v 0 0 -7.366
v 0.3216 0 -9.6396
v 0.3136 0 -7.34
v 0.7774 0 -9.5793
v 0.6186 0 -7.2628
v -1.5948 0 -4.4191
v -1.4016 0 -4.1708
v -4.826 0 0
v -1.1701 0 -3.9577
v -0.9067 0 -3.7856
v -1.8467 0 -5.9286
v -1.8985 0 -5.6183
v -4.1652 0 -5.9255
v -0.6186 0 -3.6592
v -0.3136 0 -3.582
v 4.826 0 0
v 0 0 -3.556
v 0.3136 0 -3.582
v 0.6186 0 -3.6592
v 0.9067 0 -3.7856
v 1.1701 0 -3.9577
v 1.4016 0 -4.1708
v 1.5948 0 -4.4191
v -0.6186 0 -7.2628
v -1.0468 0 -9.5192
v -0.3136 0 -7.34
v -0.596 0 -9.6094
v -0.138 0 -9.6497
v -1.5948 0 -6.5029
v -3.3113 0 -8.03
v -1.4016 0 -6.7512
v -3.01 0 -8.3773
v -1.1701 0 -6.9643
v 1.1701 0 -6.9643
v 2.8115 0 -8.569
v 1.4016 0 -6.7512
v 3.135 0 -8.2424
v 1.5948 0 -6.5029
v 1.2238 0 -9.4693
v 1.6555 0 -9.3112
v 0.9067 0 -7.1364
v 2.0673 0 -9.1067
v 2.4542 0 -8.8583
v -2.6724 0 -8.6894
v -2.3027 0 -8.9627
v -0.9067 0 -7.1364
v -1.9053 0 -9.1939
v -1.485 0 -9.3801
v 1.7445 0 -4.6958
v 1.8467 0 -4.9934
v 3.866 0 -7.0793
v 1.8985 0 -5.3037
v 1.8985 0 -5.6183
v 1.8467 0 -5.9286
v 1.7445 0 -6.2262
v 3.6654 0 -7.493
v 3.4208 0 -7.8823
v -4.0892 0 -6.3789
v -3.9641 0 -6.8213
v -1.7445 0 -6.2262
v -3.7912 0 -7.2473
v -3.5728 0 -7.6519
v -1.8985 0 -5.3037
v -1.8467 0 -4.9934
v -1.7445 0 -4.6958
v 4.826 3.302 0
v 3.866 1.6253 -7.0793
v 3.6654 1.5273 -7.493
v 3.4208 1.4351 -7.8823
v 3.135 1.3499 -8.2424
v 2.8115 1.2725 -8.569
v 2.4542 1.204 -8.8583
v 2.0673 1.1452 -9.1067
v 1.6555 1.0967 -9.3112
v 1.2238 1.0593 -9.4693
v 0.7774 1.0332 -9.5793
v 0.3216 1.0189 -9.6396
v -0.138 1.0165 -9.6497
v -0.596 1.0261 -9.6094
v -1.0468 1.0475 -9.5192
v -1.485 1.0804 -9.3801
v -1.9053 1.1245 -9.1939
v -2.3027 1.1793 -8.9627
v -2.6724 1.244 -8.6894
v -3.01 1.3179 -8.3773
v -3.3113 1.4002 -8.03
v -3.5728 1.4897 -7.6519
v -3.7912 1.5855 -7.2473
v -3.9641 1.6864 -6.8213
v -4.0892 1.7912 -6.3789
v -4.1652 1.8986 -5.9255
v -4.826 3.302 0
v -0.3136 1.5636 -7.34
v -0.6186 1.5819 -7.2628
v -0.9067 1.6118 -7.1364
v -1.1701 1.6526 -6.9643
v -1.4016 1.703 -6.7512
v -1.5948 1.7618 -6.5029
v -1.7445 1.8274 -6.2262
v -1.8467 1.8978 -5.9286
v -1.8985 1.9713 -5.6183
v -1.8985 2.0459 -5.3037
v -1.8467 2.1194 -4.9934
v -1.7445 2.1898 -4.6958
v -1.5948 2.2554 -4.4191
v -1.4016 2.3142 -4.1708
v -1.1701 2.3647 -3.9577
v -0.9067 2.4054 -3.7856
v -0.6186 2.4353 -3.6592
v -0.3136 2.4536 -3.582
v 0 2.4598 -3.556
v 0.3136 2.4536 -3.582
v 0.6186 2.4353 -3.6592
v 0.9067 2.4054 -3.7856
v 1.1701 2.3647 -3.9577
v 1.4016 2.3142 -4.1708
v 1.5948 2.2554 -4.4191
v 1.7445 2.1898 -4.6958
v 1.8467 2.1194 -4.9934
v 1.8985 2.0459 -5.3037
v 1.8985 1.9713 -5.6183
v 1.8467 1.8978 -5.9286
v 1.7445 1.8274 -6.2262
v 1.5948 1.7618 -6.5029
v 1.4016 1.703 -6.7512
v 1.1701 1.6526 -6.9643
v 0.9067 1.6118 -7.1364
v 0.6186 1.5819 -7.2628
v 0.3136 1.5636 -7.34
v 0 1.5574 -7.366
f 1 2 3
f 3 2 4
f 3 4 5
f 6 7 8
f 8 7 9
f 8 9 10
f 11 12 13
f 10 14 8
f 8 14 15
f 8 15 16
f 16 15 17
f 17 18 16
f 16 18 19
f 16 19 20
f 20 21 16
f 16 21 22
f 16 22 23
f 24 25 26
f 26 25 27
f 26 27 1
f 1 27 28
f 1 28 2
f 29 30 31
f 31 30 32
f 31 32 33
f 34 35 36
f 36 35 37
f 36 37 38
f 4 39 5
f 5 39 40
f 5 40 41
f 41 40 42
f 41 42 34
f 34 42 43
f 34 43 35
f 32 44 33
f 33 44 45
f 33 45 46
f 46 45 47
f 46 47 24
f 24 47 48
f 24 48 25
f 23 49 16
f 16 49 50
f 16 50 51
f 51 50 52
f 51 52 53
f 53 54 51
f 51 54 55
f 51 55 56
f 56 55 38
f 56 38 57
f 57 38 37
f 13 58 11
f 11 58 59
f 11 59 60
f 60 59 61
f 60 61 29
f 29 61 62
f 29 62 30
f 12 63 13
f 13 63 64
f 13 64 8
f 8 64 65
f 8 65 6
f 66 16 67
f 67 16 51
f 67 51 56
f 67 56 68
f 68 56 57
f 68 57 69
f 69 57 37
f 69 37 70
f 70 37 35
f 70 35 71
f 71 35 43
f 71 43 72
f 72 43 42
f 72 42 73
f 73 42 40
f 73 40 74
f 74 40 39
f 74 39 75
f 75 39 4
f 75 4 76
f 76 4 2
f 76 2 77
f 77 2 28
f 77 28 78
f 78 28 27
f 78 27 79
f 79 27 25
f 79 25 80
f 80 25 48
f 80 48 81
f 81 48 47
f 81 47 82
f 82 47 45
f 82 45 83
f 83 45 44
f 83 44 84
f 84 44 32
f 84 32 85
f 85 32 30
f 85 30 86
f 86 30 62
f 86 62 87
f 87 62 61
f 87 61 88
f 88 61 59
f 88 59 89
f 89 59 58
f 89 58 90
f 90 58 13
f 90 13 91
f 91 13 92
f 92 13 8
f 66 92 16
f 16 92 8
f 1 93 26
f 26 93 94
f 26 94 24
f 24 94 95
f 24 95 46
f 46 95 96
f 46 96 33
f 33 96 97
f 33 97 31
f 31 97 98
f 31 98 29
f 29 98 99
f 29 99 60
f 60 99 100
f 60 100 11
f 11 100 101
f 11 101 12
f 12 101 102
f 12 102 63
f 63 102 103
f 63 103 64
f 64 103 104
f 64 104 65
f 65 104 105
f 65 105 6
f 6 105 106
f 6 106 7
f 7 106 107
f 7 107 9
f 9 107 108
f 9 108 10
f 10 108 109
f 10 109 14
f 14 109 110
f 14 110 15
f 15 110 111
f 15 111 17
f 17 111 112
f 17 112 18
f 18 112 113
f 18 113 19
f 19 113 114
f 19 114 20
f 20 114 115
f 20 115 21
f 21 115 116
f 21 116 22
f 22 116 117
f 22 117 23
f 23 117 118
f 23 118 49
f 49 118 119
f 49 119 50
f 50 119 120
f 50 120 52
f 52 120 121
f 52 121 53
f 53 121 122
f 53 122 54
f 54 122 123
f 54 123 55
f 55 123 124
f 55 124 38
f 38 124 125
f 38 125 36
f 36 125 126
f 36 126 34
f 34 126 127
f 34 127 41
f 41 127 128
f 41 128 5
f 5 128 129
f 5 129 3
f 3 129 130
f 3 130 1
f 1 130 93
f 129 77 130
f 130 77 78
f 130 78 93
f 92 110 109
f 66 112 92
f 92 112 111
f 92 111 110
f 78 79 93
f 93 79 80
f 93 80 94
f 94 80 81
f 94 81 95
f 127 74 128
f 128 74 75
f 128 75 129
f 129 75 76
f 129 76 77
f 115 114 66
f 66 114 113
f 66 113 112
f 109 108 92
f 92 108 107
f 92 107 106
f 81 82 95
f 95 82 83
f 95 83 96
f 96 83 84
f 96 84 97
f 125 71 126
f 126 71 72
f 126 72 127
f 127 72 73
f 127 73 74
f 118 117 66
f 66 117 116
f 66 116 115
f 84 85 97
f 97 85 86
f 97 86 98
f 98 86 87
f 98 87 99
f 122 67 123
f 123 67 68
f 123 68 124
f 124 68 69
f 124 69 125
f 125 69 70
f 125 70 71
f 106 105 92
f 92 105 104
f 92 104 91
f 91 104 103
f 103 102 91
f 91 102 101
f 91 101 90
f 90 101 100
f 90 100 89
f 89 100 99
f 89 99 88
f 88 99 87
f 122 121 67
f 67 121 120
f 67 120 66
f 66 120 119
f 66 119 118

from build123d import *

# Parameters (mm, degrees)
SKETCH1_R               = 1.905
BOSS_EXTRUDE3_DEPTH     = 3.302
BOUNDARY_CUT1_START     = 3.213111109
BOUNDARY_CUT1_OUTLINE_W = 12
BOUNDARY_CUT1_OUTLINE_H = 13
BOUNDARY_CUT1_DEPTH     = 2.224461537


# Read off the part's stored shape, not the designer's step: Boundary-Cut1
with BuildPart() as part:
    # Sketch1 → Boss-Extrude3 (new body)
    with BuildSketch(Plane(origin=(0, 0, 0), x_dir=(1, 0, 0), z_dir=(0, 1, 0))):
        with BuildLine():
            Line((0, 0), (-4.826, 0))
            Line((-4.826, 0), (-4.165178795, 5.925506842))
            ThreePointArc((-4.165178795, 5.925506842), (-2.7944349, 8.584397923), (0, 9.652))
            ThreePointArc((0, 9.652), (2.321880516, 8.950033085), (3.865959408, 7.079282688))
            Line((3.865959408, 7.079282688), (4.826, 0))
            Line((4.826, 0), (0, 0))
        make_face()
        with Locations(Location((0, 5.461, 0), (0, 0, 90))):
            Circle(SKETCH1_R, mode=Mode.SUBTRACT)
    extrude(amount=BOSS_EXTRUDE3_DEPTH)

    # Boundary-Cut1 outline → Boundary-Cut1 (cut)
    with BuildSketch(Plane(origin=(0, 0, 0), x_dir=(1, 0, 0), z_dir=(0, 0.9730802874900094, -0.23046638387921312)).offset(BOUNDARY_CUT1_START)):
        with Locations((0, 4.5)):
            Rectangle(BOUNDARY_CUT1_OUTLINE_W, BOUNDARY_CUT1_OUTLINE_H)
    extrude(amount=BOUNDARY_CUT1_DEPTH, mode=Mode.SUBTRACT)


solid = part.part
